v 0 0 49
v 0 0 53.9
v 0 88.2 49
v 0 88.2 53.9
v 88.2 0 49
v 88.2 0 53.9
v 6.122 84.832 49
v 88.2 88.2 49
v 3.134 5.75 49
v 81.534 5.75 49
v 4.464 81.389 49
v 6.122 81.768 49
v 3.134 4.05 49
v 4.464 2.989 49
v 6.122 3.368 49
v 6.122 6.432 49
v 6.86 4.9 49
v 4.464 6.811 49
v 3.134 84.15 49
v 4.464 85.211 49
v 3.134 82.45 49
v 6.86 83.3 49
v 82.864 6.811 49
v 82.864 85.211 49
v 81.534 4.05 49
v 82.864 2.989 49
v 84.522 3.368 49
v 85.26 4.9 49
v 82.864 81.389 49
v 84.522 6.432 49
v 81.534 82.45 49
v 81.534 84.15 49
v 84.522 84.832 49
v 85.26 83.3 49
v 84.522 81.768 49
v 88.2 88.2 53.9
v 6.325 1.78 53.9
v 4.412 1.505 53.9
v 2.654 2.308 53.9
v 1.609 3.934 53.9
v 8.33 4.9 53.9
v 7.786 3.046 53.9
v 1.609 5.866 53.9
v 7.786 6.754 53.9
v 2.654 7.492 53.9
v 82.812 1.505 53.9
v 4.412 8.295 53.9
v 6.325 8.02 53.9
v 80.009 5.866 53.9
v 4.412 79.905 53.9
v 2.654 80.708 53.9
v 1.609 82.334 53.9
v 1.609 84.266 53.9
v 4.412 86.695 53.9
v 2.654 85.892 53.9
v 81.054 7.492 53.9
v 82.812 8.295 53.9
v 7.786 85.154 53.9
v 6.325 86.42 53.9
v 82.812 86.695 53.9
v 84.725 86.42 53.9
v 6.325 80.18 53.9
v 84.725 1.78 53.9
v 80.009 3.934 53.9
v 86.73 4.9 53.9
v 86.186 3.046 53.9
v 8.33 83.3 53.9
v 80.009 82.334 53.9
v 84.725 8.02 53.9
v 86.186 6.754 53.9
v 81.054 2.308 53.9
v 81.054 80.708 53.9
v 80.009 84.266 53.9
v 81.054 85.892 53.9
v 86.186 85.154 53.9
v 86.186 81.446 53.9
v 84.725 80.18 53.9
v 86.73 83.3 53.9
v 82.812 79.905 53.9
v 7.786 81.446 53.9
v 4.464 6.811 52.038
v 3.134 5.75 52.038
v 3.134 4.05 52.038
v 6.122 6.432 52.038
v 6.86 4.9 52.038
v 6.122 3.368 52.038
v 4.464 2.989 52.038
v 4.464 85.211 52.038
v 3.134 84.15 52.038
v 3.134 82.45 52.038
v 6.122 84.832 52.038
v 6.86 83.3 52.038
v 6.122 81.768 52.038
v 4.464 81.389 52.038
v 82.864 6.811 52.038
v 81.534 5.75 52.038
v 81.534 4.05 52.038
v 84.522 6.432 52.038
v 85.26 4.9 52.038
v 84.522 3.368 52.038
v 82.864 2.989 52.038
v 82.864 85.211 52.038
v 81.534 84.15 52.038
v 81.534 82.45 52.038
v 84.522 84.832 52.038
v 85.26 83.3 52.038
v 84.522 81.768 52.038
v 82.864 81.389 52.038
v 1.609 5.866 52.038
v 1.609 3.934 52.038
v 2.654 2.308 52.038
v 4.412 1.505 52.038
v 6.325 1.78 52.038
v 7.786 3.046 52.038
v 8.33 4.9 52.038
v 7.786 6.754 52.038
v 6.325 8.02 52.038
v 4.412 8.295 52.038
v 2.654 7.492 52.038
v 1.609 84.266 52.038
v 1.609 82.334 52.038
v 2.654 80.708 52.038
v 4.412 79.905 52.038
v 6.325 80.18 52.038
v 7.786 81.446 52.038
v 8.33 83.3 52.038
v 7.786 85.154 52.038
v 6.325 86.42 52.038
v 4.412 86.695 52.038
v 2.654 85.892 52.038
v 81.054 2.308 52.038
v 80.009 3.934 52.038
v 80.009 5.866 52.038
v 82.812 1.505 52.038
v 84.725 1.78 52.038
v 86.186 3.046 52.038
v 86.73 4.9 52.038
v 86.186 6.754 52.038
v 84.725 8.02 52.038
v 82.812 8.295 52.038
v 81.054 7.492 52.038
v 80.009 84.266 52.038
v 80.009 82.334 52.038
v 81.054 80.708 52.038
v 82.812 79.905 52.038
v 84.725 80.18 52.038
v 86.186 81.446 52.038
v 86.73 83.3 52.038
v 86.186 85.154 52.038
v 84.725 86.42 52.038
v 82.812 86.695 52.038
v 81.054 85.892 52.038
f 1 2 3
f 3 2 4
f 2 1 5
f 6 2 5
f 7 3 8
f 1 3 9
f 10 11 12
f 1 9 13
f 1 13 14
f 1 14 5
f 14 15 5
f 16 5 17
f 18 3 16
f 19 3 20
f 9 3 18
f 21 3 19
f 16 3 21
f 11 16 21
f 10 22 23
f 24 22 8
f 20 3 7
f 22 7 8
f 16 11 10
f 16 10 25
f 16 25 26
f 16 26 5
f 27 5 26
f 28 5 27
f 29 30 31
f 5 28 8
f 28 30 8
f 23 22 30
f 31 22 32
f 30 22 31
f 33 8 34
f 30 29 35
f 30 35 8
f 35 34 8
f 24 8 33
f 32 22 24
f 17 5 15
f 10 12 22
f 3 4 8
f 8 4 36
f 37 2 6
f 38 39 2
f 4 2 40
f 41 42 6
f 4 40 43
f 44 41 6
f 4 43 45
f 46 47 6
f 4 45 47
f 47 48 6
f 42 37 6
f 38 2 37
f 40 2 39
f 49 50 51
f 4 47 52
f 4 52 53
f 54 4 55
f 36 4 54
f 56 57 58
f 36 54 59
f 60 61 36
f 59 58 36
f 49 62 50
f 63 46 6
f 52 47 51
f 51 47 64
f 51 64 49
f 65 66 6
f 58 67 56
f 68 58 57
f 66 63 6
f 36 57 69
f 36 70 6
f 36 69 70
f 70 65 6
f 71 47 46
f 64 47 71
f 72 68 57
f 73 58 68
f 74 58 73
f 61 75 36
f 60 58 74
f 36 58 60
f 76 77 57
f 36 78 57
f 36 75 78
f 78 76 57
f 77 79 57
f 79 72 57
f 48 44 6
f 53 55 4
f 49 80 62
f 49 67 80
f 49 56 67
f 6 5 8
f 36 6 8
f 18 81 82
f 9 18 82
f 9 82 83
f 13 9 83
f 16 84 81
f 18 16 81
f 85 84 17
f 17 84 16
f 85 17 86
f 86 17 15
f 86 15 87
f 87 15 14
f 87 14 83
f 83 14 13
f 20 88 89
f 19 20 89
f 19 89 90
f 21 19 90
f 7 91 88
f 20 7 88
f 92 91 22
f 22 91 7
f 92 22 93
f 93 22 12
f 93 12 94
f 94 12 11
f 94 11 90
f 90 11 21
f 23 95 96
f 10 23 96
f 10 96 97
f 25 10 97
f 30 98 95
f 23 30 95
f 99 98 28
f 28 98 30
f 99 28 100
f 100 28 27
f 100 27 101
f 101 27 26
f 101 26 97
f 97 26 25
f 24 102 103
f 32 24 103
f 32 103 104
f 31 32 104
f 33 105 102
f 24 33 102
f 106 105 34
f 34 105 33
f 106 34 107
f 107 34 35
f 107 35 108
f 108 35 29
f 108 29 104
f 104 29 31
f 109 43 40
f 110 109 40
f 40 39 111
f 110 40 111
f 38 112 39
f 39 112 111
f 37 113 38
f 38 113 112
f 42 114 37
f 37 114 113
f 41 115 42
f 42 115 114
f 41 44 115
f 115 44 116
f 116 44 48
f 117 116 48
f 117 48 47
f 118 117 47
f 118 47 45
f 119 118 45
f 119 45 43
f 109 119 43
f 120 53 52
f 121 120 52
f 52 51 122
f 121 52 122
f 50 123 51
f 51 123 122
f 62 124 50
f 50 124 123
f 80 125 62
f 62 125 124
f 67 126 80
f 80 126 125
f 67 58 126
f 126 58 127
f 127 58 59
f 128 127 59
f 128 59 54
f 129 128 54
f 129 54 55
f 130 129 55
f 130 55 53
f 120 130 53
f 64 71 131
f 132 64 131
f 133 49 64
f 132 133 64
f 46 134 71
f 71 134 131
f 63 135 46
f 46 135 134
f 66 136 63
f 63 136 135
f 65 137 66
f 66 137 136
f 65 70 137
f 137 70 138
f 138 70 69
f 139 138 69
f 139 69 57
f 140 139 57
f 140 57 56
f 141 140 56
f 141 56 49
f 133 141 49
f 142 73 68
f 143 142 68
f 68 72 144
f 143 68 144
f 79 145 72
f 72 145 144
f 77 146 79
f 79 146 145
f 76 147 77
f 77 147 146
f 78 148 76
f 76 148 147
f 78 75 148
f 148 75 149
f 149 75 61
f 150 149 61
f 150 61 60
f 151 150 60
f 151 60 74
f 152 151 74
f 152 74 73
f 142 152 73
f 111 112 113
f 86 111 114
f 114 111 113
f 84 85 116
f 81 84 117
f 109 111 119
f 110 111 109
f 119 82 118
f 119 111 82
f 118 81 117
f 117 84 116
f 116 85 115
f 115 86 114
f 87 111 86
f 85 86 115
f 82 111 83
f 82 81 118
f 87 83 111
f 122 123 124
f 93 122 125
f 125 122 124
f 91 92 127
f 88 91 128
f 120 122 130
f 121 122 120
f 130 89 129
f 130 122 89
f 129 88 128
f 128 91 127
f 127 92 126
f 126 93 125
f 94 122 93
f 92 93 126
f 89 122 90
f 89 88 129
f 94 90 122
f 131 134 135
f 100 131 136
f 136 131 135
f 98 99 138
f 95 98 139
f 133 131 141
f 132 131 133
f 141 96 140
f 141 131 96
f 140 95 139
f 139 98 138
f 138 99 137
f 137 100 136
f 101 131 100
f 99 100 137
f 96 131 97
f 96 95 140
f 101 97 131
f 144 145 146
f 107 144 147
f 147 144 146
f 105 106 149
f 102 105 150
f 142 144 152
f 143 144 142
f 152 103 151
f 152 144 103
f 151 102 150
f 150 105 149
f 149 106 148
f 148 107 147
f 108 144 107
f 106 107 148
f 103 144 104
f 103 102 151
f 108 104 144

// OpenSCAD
scale(0.98){
//tapa
difference(){
translate([0,0,50])
cube([90,90,5]);

union() {
translate([5,5,49])
cylinder(r=2,h=10);
translate([5+90-10,5+90-10,49])
cylinder(r=2,h=10);
translate([5+90-10,5,49])
cylinder(r=2,h=10);
translate([5,5+90-10,49])
cylinder(r=2,h=10);


translate([5,5,50+3+0.1])
cylinder(r=3.5,h=3);

translate([5+90-10,5+90-10,50+3+0.1])
cylinder(r=3.5,h=3);

translate([5+90-10,5,50+3+0.1])
cylinder(r=3.5,h=3);

translate([5,5+90-10,50+3+0.1])
cylinder(r=3.5,h=3);
}
}
}
